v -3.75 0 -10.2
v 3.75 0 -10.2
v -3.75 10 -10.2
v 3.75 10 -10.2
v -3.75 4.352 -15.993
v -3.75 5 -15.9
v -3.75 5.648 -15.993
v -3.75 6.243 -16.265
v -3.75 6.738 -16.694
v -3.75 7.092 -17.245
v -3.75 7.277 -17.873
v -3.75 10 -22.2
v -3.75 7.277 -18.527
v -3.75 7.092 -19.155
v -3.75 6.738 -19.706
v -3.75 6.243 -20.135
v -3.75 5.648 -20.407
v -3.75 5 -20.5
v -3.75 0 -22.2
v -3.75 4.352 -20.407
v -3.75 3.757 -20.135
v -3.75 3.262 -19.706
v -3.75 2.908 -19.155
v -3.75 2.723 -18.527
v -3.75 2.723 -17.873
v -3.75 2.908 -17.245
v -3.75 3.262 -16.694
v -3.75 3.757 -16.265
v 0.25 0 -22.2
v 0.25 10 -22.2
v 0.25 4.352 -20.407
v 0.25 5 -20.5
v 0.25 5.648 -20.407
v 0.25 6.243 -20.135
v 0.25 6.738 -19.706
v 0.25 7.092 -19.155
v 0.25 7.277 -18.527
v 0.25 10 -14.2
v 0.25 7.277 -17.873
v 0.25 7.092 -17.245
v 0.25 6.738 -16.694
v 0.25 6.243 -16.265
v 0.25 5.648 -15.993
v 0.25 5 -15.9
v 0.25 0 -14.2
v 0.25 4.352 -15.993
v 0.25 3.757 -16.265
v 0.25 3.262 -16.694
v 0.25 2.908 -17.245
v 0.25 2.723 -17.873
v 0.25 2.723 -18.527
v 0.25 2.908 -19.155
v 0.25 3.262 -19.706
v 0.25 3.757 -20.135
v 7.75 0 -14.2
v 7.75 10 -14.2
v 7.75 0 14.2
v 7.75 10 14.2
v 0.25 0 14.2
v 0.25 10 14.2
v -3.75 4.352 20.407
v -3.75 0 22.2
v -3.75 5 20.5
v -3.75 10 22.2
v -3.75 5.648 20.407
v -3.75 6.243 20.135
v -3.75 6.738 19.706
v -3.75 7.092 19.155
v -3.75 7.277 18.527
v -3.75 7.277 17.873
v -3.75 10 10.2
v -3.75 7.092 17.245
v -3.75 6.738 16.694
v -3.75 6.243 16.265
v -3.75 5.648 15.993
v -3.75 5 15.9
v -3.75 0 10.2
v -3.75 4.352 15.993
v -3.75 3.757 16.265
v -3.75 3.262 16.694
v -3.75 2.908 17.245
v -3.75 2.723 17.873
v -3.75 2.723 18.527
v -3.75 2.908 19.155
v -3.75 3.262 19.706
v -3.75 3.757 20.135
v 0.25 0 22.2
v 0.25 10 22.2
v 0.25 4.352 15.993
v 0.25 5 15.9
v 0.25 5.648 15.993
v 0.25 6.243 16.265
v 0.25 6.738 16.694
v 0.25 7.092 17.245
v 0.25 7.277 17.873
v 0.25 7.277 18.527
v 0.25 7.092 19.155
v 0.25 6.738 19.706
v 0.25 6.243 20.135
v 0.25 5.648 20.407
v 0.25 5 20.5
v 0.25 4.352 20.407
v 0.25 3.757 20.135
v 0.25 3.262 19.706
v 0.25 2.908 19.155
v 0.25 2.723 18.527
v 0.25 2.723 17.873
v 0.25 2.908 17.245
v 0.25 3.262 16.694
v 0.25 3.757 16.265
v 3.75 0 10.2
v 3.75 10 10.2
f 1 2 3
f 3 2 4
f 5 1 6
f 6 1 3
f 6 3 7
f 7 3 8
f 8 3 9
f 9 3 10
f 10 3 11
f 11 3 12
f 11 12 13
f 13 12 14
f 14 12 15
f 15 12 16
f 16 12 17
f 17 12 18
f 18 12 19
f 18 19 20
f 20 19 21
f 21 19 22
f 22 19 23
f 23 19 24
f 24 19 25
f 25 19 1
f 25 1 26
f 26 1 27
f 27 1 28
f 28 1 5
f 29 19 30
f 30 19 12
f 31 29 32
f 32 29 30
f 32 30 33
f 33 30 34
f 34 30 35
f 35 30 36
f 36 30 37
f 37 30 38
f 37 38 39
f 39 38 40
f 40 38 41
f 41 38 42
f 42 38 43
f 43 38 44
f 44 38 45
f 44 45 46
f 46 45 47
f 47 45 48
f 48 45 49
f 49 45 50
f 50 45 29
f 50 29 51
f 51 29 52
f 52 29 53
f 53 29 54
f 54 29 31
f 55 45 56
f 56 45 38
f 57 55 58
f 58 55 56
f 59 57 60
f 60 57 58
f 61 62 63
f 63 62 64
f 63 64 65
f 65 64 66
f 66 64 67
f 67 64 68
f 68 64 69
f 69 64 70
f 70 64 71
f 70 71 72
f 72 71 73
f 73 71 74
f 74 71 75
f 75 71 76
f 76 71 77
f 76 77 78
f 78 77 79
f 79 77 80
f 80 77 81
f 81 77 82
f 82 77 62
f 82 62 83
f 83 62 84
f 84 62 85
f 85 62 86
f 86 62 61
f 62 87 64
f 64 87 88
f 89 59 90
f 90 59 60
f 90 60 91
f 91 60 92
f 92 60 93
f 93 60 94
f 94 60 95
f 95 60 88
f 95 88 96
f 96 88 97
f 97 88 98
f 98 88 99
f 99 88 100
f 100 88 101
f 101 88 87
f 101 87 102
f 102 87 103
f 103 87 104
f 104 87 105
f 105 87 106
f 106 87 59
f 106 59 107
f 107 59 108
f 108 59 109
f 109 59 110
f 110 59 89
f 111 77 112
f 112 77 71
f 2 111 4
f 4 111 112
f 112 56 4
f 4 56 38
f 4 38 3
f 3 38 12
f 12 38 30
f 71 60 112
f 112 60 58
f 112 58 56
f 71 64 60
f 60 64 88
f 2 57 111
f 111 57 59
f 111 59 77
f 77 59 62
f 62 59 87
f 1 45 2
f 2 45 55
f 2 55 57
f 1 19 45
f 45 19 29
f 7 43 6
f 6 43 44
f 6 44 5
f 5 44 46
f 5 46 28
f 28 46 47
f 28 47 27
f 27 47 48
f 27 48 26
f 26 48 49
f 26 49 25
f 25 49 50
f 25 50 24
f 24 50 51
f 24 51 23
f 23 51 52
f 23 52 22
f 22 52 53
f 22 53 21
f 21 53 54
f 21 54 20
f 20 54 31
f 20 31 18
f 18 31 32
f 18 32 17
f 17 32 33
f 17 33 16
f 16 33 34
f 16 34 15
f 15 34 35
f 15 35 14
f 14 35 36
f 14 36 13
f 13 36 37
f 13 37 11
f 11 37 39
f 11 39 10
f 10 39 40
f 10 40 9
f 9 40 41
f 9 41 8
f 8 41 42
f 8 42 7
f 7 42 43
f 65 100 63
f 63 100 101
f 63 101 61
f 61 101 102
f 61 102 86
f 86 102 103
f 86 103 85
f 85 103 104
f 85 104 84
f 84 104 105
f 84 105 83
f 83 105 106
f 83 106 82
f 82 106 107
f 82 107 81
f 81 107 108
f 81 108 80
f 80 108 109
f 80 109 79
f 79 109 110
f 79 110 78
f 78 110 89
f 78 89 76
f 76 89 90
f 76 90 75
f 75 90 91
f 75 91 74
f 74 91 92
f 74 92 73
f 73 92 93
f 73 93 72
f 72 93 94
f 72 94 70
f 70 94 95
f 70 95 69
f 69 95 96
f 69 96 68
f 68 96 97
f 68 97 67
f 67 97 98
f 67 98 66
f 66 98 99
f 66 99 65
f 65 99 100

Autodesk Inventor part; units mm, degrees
ref_plane "YZ Plane" through (0, 0, 0) normal (1, 0, 0) x (0, 1, 0)
ref_plane "XZ Plane" through (0, 0, 0) normal (0, 1, 0) x (-1, 0, 0)
ref_plane "XY Plane" through (0, 0, 0) normal (0, 0, 1) x (1, 0, 0)
sketch "Sketch1" plane through (0, 0, 0) normal (0, 1, 0) x (-1, 0, 0)
  line L0 (-3.75, 10.2) -> (3.75, 10.2)
  line L1 (3.75, -10.2) -> (-3.75, -10.2)
  line L2 (-3.75, -10.2) -> (-3.75, 10.2)
  line L3 (-3.75, 10.2) -> (3.75, -10.2) construction
  line L4 (3.75, 10.2) -> (-3.75, -10.2) construction
  line L5 (3.75, 10.2) -> (3.75, 22.2)
  line L6 (-3.75, 0) -> (6.7195, 0) construction
  line L7 (3.75, -10.2) -> (3.75, -22.2)
  line L8 (3.75, 22.2) -> (-0.25, 22.2)
  line L9 (-0.25, 22.2) -> (-0.25, 14.2)
  line L10 (-0.25, 14.2) -> (-7.75, 14.2)
  line L11 (3.75, -22.2) -> (-0.25, -22.2)
  line L12 (-0.25, -22.2) -> (-0.25, -14.2)
  line L13 (-0.25, -14.2) -> (-7.75, -14.2)
  line L14 (-7.75, 14.2) -> (-7.75, -14.2)
  point P0 (0, 0)
  dimension "d0" = 7.5
  dimension "d1" = 20.4
  dimension "d2" = 12
  dimension "d3" = 7.5
  dimension "d5" = 4
  dimension "d6" = 8
  dimension "d7" = 7.5
extrude "Extrusion1" add sketch "Sketch1" along normal blind 10
sketch "Sketch2" plane through (0.25, 0, 22.2) normal (1, 0, 0) x (0, 0, -1)
  line L0 (22.2, 0) -> (22.2, 12.2527) construction
  line L1 (0, 0) -> (0, 10) construction
  line L2 (8, 0) -> (36.4, 0) construction
  line L3 (0, 10) -> (8, 0) construction
  circle A0 centre (4, 5) radius 2.3
  circle A1 centre (40.4, 5) radius 2.3
  dimension "d10" = 4.6
extrude "Extrusion2" cut sketch "Sketch2" against normal through all
properties part number "3d_print_actuator_mount"
